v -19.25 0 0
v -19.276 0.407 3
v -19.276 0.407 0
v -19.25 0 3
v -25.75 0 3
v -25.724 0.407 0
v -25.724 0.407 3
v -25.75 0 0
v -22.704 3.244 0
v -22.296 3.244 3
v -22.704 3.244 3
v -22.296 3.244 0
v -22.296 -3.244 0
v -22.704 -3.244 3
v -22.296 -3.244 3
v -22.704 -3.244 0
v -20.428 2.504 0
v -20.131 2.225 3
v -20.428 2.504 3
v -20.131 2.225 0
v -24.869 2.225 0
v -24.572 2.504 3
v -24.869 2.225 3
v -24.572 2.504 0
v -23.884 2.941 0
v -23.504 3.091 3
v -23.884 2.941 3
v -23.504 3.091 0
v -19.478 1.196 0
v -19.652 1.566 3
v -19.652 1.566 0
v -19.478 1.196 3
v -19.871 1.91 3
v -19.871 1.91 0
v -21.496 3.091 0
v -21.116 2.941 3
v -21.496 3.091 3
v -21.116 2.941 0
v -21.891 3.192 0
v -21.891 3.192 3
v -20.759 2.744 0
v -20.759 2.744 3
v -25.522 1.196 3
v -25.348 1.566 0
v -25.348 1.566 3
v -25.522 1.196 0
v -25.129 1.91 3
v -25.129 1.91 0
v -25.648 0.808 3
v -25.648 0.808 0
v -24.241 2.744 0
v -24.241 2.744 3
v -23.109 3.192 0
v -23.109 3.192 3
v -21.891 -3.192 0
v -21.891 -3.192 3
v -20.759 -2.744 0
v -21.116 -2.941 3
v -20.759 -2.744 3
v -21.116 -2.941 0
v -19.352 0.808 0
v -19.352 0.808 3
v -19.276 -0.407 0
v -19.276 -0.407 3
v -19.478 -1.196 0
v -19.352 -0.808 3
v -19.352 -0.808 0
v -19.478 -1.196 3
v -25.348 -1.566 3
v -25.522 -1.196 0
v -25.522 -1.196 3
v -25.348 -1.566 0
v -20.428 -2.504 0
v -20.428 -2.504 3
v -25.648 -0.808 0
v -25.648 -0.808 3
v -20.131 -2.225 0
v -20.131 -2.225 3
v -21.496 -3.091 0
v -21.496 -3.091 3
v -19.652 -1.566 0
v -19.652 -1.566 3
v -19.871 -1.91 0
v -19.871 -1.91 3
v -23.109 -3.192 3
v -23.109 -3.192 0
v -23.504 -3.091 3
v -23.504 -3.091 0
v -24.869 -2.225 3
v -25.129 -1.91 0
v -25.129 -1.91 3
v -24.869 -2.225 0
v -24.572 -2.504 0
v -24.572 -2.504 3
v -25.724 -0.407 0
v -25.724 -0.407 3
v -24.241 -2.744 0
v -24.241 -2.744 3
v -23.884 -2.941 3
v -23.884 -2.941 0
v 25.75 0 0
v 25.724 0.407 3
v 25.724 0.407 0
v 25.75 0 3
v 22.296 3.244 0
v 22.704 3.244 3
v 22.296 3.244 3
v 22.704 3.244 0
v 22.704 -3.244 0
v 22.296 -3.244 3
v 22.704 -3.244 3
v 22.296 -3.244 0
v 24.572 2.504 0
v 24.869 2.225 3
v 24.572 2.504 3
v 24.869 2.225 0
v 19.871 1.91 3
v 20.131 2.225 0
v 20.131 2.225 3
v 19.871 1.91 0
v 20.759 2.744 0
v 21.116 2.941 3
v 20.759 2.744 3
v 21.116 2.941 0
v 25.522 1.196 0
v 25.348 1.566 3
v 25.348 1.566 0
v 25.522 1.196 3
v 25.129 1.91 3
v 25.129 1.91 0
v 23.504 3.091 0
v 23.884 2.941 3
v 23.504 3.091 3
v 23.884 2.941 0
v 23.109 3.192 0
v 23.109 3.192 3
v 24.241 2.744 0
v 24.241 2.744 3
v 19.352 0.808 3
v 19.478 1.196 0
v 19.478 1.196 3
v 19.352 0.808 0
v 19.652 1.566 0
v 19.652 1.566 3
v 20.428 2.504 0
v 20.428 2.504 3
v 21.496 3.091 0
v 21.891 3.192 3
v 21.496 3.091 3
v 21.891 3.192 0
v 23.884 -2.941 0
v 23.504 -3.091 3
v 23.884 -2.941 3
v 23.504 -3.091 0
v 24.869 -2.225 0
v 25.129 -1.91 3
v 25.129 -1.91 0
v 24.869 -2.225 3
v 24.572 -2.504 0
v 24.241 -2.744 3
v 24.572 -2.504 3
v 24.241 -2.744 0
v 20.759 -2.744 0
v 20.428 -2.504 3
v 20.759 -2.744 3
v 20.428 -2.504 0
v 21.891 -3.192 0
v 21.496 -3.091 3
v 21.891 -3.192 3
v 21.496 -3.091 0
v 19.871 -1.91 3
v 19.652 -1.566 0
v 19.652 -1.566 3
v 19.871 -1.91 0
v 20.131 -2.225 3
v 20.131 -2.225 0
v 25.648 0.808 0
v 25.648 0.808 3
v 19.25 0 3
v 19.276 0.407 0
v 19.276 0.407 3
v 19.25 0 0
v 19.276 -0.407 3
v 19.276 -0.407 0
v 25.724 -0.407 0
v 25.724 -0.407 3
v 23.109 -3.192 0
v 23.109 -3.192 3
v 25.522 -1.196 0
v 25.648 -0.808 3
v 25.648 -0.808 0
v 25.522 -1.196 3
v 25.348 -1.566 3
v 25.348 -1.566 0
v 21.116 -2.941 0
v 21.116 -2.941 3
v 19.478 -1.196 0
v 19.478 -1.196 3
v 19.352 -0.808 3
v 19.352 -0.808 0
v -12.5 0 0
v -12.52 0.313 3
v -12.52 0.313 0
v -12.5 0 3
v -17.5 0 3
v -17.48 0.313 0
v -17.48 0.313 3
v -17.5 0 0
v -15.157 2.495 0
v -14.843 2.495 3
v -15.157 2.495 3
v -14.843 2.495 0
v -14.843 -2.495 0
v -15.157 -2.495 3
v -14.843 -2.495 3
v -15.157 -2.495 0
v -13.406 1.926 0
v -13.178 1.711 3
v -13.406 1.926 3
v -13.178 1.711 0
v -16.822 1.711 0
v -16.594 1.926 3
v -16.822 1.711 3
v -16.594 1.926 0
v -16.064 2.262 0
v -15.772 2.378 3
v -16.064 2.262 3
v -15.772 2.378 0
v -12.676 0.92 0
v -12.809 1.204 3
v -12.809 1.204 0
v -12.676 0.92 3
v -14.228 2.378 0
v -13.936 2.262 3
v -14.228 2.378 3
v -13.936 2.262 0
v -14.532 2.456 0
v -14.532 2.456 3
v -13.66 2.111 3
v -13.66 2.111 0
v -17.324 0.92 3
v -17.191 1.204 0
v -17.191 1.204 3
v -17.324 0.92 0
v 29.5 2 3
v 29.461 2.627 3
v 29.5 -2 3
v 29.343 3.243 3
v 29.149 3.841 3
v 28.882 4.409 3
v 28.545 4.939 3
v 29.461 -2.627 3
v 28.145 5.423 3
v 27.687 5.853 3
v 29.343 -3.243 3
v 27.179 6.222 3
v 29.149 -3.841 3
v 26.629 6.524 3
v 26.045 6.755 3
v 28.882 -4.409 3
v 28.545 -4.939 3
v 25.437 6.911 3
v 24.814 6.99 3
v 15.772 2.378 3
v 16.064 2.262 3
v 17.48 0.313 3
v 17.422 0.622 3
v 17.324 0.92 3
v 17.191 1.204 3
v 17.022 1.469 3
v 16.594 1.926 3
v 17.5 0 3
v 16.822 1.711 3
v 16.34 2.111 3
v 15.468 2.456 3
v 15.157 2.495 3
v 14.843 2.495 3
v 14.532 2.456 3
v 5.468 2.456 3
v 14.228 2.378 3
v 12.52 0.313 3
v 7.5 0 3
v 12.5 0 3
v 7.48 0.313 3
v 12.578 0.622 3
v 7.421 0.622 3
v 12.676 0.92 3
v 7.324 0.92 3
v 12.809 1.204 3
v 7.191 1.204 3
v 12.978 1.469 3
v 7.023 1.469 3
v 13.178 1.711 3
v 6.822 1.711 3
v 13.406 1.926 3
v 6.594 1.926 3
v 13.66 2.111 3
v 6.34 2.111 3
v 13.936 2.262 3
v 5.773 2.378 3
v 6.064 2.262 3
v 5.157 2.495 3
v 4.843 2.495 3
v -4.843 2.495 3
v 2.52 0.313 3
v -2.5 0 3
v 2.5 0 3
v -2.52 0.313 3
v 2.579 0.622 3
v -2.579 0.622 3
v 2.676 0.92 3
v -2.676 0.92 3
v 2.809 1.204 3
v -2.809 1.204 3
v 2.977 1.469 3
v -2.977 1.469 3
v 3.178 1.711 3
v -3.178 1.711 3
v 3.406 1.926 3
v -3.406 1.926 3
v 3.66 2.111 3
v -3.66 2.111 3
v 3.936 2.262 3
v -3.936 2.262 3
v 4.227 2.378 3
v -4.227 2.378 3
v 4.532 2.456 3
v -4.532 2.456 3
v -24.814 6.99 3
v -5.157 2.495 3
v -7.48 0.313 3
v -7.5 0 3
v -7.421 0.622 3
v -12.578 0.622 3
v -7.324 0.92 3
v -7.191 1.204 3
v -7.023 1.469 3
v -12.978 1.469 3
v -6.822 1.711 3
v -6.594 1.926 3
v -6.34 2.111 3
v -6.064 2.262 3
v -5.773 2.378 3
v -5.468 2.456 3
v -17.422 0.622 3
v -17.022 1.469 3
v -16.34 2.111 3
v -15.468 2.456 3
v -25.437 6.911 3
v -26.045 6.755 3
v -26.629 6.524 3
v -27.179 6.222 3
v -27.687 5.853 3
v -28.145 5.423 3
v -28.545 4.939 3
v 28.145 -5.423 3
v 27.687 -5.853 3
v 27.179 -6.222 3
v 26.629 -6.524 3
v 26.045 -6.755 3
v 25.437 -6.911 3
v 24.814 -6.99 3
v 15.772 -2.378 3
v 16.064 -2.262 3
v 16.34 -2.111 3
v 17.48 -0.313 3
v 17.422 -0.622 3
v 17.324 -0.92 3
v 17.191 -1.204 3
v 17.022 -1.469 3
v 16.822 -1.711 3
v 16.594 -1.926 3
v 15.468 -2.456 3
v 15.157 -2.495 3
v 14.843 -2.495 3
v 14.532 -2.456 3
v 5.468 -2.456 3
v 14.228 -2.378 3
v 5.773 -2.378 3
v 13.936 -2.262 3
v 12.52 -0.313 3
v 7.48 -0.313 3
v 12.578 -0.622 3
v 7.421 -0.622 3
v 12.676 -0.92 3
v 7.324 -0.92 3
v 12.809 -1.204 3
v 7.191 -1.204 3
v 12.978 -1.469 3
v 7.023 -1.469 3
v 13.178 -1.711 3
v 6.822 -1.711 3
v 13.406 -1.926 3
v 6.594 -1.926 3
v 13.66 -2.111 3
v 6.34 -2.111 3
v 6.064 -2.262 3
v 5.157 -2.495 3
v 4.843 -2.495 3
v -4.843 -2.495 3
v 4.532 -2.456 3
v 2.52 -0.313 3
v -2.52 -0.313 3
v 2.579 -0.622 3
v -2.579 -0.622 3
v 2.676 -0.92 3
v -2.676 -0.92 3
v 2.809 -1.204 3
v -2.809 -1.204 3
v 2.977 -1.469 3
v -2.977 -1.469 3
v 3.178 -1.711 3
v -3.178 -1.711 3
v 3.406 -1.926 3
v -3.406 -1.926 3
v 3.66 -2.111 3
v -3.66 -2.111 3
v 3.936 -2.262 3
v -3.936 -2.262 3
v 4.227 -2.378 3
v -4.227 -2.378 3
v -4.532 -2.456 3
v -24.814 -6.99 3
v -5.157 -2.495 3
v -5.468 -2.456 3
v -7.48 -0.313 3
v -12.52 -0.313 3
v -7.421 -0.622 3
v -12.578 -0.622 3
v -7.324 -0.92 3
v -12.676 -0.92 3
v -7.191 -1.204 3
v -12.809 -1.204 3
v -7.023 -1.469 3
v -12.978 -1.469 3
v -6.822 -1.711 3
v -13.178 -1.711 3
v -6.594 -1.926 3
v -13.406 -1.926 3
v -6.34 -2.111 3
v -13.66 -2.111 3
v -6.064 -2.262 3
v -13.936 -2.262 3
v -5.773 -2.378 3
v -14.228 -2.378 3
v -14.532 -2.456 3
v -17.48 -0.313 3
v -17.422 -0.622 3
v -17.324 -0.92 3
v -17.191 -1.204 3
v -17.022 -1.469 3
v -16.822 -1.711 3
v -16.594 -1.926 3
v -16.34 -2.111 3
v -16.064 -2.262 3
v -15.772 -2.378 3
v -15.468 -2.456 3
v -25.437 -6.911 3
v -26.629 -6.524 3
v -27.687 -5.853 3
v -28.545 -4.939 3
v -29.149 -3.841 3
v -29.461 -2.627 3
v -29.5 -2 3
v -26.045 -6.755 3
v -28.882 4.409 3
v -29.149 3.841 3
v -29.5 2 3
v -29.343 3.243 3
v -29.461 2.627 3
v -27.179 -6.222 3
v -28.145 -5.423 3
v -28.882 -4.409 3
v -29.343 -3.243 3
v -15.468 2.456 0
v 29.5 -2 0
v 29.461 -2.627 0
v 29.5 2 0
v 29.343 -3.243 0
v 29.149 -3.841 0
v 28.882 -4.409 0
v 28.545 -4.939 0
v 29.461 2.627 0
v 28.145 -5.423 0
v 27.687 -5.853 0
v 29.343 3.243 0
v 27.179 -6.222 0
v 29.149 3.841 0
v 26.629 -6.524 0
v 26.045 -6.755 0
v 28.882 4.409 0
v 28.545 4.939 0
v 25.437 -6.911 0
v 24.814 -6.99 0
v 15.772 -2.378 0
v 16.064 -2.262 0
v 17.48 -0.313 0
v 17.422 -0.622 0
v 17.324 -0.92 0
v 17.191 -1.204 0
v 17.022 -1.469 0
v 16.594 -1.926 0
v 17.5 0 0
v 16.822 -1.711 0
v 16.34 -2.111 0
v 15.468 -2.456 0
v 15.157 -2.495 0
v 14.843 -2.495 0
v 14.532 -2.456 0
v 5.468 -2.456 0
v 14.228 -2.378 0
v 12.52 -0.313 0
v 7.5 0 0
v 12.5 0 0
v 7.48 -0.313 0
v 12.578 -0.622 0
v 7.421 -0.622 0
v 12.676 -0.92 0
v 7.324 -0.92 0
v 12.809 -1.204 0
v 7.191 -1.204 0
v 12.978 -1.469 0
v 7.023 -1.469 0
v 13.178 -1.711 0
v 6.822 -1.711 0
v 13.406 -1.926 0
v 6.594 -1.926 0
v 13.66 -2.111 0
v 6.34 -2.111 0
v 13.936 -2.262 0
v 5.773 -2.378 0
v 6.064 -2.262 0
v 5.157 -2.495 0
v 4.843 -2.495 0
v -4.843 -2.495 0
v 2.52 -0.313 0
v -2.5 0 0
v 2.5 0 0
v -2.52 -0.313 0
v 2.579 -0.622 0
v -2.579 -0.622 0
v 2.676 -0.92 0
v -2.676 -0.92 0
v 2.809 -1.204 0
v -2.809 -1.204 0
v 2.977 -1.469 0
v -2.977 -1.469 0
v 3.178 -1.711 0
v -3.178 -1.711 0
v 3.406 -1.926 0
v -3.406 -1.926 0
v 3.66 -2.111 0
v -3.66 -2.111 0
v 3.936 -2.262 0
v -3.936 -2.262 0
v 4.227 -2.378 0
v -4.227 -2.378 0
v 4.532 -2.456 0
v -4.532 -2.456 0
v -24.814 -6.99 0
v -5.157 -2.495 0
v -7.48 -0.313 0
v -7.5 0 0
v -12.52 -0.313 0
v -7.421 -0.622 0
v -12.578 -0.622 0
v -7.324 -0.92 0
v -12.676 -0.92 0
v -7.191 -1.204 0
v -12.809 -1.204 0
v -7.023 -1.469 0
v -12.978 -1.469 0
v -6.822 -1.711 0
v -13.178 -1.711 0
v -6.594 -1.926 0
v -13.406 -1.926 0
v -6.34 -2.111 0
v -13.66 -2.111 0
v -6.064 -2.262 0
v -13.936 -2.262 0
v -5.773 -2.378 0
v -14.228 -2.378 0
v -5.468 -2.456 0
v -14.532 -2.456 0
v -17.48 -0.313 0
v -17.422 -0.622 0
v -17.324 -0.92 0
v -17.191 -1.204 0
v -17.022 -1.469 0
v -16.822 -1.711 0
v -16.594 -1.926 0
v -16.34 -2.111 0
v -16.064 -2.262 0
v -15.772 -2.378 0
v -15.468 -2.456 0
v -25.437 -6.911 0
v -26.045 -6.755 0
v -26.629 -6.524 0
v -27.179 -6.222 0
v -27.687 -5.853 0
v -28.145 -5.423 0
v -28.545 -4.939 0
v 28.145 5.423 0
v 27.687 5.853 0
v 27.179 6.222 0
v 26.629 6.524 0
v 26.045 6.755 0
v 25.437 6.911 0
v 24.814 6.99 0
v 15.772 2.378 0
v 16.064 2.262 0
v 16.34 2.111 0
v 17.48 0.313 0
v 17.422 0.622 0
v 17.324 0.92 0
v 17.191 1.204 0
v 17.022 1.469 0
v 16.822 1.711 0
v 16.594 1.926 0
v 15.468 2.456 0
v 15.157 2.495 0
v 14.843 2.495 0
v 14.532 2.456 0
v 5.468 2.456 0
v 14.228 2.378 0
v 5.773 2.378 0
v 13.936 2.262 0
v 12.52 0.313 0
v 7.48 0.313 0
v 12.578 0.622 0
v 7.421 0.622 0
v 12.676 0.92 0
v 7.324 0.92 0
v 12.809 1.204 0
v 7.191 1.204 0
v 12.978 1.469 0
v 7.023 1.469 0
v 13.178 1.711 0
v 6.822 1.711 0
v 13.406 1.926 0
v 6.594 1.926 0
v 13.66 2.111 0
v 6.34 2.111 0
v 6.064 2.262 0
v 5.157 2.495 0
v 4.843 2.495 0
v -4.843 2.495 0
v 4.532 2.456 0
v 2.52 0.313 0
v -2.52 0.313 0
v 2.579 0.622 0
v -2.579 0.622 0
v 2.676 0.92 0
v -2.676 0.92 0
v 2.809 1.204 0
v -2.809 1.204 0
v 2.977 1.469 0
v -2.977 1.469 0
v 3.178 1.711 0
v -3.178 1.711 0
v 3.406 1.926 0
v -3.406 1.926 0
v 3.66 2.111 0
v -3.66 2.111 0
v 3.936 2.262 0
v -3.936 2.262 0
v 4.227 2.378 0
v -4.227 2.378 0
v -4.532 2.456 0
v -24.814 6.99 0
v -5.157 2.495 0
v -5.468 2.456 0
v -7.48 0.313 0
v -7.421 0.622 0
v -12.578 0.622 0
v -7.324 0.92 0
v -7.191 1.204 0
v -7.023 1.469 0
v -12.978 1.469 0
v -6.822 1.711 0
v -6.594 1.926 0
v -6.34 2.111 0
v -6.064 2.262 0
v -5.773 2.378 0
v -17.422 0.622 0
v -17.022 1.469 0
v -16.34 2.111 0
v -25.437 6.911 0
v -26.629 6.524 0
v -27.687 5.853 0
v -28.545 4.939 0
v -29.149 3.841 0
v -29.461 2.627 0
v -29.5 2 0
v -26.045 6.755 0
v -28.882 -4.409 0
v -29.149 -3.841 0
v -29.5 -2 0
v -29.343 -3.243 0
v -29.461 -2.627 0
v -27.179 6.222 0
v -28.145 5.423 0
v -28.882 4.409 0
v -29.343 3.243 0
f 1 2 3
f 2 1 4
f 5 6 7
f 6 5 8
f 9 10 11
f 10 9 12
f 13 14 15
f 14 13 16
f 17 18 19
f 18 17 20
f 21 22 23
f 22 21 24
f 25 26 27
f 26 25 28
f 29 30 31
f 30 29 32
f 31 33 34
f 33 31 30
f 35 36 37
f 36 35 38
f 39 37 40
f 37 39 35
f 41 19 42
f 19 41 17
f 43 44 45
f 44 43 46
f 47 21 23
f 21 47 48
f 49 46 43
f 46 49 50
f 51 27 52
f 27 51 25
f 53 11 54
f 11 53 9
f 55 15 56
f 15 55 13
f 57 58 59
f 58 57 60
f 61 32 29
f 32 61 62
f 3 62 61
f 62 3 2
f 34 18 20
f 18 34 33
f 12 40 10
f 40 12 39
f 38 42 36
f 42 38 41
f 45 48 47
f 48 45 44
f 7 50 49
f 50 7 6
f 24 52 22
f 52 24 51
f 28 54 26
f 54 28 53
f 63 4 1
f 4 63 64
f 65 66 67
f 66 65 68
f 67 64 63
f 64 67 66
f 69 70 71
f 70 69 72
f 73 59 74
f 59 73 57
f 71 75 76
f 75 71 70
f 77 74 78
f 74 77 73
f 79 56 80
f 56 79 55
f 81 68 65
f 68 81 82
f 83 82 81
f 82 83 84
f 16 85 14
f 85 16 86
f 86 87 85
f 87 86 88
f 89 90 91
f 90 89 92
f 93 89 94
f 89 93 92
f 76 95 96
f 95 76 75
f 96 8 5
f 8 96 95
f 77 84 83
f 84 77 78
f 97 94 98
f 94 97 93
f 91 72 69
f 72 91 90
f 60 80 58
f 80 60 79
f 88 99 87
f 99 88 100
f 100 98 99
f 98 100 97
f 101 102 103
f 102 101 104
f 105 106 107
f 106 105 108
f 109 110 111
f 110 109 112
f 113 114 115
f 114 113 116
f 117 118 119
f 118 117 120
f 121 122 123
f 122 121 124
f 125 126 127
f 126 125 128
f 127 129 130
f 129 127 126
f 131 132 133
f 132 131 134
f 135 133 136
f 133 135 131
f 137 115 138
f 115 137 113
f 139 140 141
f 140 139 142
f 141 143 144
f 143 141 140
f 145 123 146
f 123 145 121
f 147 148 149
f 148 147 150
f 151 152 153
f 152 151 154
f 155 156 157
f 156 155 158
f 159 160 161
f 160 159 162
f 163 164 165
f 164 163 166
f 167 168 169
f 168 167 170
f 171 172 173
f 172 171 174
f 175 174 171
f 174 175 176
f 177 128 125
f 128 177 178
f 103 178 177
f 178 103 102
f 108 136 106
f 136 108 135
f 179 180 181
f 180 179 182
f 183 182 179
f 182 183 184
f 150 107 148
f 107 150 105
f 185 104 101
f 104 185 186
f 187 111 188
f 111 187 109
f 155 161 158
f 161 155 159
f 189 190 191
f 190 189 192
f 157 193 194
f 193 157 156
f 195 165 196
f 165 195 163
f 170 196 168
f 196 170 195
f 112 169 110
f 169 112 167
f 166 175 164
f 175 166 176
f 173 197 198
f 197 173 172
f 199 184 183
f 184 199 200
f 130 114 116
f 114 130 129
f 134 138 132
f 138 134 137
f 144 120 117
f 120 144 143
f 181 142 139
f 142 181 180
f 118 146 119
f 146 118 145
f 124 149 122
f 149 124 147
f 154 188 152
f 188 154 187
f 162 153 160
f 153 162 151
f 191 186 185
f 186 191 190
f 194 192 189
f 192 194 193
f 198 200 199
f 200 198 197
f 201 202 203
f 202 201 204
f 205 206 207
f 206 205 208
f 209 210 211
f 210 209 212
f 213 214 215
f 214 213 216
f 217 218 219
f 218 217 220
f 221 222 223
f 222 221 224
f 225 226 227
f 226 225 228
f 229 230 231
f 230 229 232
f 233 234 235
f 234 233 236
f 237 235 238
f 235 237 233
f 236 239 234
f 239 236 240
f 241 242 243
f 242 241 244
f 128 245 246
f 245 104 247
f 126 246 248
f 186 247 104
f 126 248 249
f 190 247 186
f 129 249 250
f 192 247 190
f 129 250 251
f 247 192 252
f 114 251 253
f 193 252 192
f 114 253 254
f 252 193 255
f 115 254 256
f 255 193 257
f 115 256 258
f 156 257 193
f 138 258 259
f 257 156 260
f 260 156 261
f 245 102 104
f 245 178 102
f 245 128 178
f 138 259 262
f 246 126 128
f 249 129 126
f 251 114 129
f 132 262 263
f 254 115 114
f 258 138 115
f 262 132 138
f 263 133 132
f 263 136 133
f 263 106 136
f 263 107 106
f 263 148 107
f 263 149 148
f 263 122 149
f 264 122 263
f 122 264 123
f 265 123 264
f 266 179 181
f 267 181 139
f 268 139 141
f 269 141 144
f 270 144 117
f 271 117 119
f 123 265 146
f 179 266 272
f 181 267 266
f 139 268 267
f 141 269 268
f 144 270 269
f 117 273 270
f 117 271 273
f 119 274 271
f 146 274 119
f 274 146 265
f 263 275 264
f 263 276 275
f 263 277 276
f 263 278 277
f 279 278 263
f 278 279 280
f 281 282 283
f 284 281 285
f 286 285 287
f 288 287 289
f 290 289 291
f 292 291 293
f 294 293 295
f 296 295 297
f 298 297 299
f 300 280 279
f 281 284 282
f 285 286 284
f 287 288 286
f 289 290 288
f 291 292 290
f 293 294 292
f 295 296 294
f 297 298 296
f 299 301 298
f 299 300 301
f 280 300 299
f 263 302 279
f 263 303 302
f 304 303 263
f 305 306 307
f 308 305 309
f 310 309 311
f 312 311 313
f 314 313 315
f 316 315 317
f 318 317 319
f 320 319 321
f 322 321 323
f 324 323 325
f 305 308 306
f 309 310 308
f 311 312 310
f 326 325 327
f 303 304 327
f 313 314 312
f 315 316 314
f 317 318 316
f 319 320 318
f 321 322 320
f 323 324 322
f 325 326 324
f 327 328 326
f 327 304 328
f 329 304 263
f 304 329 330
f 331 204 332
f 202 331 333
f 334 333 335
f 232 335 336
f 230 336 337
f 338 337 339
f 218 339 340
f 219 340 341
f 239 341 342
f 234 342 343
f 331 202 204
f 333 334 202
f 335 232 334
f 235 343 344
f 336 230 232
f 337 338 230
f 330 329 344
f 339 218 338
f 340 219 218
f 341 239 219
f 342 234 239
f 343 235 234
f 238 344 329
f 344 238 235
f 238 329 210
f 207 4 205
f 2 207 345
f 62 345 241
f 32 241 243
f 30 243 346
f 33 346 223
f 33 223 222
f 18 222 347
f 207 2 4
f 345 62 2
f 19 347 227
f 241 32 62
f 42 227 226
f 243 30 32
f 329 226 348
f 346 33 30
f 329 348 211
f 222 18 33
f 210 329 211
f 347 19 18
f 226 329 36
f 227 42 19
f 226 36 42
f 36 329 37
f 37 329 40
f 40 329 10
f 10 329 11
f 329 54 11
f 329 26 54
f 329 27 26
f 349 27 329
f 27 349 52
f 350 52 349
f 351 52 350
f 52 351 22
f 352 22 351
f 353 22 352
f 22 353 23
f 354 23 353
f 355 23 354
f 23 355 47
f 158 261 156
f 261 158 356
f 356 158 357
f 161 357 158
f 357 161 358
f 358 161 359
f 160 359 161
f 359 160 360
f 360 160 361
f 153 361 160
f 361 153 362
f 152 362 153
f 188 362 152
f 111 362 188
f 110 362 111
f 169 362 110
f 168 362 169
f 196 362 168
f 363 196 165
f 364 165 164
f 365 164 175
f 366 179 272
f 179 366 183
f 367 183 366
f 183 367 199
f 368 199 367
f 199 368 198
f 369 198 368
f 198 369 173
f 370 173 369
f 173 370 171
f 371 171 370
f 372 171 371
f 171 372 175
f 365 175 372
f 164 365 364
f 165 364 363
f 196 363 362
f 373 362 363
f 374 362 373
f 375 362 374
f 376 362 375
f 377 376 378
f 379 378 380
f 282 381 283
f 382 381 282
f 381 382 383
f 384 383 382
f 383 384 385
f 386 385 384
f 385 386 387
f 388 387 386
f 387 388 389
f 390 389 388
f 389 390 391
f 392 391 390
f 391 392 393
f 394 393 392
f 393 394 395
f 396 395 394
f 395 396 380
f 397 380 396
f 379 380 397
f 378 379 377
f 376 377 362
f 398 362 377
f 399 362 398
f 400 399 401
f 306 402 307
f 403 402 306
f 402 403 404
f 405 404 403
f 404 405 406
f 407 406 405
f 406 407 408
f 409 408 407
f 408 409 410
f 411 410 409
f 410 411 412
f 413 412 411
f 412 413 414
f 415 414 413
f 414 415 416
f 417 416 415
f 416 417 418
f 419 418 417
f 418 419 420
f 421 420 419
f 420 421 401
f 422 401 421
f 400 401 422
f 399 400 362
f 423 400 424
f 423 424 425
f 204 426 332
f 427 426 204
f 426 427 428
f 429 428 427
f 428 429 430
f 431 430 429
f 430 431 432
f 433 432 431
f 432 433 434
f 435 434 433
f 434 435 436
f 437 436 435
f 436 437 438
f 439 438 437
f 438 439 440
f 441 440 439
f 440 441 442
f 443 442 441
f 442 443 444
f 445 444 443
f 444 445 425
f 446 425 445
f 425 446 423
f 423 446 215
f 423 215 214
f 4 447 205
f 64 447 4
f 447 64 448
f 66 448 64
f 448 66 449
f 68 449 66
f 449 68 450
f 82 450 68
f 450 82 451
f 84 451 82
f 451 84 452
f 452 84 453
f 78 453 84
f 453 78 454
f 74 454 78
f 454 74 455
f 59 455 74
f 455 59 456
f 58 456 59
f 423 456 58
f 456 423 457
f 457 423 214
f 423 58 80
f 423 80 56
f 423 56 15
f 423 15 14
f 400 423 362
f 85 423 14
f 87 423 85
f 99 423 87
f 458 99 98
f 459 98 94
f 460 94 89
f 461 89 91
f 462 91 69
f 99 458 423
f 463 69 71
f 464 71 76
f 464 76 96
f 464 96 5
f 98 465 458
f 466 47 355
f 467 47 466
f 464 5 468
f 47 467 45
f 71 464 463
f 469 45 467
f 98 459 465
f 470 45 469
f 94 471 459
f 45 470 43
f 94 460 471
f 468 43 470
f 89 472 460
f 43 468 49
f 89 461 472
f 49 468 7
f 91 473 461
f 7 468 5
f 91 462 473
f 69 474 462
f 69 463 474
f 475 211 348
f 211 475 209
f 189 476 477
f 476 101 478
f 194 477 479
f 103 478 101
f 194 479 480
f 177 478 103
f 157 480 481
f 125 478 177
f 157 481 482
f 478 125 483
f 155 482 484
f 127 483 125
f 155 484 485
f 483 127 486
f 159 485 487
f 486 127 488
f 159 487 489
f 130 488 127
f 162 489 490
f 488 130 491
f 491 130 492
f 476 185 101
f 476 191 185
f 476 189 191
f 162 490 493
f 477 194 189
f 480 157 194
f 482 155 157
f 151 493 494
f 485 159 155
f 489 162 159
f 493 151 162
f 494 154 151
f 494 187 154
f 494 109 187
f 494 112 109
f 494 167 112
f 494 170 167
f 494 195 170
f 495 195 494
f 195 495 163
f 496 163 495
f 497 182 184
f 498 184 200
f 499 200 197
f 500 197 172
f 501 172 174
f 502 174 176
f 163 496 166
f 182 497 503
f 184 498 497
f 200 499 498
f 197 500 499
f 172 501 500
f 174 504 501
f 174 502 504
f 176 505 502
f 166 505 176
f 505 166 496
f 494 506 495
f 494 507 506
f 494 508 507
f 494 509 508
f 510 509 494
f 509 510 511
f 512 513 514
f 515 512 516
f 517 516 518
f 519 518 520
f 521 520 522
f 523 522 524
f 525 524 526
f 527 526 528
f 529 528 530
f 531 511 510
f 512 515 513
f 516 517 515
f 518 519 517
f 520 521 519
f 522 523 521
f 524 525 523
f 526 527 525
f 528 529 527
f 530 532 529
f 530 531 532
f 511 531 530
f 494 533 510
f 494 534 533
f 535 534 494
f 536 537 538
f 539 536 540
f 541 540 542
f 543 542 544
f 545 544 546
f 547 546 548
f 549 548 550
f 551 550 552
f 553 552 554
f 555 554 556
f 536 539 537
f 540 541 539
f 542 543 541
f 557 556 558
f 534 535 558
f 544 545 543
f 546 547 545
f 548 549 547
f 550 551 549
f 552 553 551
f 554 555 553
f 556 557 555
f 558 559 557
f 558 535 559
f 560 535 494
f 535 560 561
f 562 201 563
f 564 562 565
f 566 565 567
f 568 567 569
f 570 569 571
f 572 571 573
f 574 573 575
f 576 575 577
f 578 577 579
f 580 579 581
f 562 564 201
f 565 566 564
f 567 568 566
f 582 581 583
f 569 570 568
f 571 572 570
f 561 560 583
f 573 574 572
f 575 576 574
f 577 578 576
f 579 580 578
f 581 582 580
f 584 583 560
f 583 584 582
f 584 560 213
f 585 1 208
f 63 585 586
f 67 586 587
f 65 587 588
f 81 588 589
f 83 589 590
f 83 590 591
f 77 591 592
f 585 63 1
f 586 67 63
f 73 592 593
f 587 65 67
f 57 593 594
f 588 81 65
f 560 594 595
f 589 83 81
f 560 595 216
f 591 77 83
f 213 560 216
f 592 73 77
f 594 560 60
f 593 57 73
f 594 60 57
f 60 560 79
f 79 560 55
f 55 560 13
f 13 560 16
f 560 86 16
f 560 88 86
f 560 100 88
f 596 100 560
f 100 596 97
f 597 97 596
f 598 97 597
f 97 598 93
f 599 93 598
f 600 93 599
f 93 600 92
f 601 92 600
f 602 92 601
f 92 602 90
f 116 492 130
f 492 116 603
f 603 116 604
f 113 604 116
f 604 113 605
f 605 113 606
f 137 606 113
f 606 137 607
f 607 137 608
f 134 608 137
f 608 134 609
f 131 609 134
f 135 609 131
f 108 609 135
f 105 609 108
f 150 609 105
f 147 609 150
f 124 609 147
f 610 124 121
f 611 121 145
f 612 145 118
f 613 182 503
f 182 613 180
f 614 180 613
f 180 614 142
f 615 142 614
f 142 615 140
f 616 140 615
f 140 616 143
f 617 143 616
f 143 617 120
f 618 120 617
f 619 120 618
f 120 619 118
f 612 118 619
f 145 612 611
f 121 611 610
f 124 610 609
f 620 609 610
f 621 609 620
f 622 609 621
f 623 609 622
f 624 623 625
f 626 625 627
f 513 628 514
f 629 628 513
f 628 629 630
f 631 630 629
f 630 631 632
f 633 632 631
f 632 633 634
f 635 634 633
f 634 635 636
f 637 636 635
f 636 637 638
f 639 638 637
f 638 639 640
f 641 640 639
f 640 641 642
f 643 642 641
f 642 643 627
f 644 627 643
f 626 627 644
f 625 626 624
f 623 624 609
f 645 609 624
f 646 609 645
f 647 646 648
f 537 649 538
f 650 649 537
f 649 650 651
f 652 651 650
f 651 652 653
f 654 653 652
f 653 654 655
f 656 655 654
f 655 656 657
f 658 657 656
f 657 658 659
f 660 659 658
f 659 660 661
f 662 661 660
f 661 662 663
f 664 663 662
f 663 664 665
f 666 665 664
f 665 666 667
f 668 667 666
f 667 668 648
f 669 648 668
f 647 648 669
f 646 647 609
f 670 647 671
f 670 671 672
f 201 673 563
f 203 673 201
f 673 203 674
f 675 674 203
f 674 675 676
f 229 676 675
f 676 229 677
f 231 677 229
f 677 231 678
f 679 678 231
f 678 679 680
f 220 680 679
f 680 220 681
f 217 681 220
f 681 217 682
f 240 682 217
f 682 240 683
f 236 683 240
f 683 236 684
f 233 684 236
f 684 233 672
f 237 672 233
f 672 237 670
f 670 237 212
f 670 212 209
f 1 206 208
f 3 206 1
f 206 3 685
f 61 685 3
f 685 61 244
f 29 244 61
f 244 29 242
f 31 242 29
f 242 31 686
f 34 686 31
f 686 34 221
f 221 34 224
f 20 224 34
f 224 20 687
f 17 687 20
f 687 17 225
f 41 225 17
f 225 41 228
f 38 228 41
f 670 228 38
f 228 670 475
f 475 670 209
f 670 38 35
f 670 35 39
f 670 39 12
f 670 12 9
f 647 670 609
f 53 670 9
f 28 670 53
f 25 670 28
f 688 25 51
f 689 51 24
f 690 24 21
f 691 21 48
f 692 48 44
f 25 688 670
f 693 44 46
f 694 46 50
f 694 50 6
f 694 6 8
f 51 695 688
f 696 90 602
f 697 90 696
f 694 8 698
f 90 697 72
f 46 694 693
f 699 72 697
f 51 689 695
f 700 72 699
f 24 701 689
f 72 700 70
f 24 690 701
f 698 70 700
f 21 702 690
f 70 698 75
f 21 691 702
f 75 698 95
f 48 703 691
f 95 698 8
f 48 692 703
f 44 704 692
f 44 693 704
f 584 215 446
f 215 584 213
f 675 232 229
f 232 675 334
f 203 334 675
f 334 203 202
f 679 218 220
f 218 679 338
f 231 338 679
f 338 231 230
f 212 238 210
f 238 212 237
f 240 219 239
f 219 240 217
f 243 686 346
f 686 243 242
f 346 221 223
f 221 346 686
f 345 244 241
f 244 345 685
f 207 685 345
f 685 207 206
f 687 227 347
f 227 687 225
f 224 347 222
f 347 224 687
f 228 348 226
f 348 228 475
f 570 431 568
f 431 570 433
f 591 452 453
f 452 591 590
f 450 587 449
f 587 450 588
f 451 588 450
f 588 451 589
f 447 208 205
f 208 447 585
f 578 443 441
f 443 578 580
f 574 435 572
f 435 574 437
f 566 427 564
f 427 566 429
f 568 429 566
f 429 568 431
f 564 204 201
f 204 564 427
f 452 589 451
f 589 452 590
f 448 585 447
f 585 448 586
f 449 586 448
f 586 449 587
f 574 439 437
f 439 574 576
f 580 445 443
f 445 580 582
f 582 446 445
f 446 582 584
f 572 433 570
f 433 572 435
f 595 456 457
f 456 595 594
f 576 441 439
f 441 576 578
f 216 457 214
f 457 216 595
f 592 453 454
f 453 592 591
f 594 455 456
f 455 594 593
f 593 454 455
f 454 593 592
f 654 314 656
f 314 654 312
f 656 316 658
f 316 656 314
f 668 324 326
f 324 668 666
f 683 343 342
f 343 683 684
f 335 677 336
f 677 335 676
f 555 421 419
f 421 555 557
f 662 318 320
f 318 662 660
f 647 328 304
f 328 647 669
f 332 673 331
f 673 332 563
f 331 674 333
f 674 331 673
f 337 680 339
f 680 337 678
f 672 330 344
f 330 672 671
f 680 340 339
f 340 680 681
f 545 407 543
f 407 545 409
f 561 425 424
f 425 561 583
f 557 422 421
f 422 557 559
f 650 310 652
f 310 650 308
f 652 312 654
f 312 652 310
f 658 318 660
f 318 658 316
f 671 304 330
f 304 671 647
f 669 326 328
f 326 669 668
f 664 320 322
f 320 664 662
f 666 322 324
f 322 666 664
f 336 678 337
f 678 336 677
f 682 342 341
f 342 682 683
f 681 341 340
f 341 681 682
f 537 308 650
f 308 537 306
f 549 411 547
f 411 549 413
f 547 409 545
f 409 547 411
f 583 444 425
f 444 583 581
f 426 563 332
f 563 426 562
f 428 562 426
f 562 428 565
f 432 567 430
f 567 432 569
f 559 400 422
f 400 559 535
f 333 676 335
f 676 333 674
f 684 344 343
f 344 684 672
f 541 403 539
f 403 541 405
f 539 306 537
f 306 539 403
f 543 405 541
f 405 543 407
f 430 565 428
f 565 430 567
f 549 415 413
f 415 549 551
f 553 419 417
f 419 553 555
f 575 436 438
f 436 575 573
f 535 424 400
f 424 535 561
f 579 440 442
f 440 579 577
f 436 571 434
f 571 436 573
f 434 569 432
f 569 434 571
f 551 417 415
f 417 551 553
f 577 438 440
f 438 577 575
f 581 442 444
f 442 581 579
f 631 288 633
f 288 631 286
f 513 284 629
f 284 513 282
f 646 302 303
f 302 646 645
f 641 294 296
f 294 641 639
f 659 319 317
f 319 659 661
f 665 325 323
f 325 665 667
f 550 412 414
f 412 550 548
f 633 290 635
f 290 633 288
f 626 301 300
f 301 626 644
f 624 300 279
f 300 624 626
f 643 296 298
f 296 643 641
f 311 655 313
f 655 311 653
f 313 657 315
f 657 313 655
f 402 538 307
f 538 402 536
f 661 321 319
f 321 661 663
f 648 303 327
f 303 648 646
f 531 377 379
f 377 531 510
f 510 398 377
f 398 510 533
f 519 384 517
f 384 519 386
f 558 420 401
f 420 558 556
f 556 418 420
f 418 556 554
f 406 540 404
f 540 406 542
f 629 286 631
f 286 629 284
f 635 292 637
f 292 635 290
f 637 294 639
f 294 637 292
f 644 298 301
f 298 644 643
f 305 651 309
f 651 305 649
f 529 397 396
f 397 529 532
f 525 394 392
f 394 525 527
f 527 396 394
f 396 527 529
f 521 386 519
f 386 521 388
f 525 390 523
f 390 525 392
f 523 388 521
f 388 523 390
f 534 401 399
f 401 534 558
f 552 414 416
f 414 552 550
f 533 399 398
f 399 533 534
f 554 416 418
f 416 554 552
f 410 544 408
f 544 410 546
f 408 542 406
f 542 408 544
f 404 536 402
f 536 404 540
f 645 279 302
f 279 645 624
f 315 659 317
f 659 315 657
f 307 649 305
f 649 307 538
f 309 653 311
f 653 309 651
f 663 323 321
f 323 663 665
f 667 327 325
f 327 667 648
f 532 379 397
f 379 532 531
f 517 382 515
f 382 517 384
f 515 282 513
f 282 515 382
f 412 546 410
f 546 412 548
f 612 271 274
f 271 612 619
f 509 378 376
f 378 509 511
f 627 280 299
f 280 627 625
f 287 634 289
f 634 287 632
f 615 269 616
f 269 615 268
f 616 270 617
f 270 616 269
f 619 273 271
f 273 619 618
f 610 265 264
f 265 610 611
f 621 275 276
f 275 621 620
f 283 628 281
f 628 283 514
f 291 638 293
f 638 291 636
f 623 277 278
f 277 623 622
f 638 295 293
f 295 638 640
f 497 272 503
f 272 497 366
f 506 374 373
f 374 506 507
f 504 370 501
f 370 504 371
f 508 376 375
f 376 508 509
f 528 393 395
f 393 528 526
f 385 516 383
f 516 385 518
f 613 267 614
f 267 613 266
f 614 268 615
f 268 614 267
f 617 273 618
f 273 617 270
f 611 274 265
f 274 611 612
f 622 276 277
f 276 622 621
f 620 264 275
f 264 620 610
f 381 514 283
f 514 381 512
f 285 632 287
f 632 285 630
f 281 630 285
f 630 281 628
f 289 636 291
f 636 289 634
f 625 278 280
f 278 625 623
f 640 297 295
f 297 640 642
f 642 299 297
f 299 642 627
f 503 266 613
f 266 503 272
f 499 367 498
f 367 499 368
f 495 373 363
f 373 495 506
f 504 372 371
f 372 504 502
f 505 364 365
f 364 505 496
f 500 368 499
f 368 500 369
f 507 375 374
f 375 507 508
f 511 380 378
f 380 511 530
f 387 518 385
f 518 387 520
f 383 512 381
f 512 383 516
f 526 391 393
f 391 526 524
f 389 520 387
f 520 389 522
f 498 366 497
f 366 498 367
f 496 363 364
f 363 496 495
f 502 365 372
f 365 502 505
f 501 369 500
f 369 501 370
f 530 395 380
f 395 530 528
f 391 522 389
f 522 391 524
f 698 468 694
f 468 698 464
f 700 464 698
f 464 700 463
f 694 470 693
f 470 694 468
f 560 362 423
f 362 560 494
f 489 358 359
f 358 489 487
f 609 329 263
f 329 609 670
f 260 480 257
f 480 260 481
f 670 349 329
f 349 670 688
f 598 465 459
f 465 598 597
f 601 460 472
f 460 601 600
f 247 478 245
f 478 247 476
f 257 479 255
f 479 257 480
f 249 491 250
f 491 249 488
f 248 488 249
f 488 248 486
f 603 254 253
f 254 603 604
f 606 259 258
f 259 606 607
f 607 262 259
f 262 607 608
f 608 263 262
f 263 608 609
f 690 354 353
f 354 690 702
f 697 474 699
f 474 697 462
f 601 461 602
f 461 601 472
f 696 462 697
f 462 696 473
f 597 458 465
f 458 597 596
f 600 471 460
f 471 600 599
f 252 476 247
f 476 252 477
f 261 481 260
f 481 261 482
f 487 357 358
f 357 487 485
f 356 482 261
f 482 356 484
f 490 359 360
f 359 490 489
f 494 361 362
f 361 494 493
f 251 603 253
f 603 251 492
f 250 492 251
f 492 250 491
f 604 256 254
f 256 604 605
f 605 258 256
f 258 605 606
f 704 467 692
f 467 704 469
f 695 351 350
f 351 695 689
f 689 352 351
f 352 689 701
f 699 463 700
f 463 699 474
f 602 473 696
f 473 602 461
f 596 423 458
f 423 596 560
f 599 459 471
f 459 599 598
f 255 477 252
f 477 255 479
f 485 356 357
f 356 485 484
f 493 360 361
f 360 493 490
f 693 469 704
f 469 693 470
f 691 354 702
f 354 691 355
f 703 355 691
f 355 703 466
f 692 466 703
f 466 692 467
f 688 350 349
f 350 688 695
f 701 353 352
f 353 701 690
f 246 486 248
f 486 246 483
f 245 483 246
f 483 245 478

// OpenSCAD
$fn = 50;


difference() {
	union() {
		hull() {
			translate(v = [-24.5000000000, 2.0000000000, 0]) {
				cylinder(h = 3, r = 5);
			}
			translate(v = [24.5000000000, 2.0000000000, 0]) {
				cylinder(h = 3, r = 5);
			}
			translate(v = [-24.5000000000, -2.0000000000, 0]) {
				cylinder(h = 3, r = 5);
			}
			translate(v = [24.5000000000, -2.0000000000, 0]) {
				cylinder(h = 3, r = 5);
			}
		}
	}
	union() {
		#translate(v = [-22.5000000000, 0.0000000000, 0]) {
			cylinder(h = 3, r = 3.2500000000);
		}
		#translate(v = [22.5000000000, 0.0000000000, 0]) {
			cylinder(h = 3, r = 3.2500000000);
		}
		#translate(v = [-22.5000000000, 0.0000000000, -100.0000000000]) {
			cylinder(h = 200, r = 3.2500000000);
		}
		#translate(v = [-22.5000000000, 0.0000000000, -100.0000000000]) {
			cylinder(h = 200, r = 3.2500000000);
		}
		#translate(v = [22.5000000000, 0.0000000000, -100.0000000000]) {
			cylinder(h = 200, r = 3.2500000000);
		}
		#translate(v = [22.5000000000, 0.0000000000, -100.0000000000]) {
			cylinder(h = 200, r = 3.2500000000);
		}
		#translate(v = [-22.5000000000, 0.0000000000, 0]) {
			cylinder(h = 3, r = 1.8000000000);
		}
		#translate(v = [22.5000000000, 0.0000000000, 0]) {
			cylinder(h = 3, r = 1.8000000000);
		}
		#translate(v = [-22.5000000000, 0.0000000000, 0]) {
			cylinder(h = 3, r = 1.8000000000);
		}
		#translate(v = [22.5000000000, 0.0000000000, 0]) {
			cylinder(h = 3, r = 1.8000000000);
		}
		#translate(v = [-22.5000000000, 0.0000000000, 0]) {
			cylinder(h = 3, r = 1.8000000000);
		}
		#translate(v = [22.5000000000, 0.0000000000, 0]) {
			cylinder(h = 3, r = 1.8000000000);
		}
		#translate(v = [-15.0000000000, 0, 0]) {
			cylinder(h = 3, r = 2.5000000000);
		}
		#translate(v = [-5.0000000000, 0, 0]) {
			cylinder(h = 3, r = 2.5000000000);
		}
		#translate(v = [5.0000000000, 0, 0]) {
			cylinder(h = 3, r = 2.5000000000);
		}
		#translate(v = [15.0000000000, 0, 0]) {
			cylinder(h = 3, r = 2.5000000000);
		}
	}
}
